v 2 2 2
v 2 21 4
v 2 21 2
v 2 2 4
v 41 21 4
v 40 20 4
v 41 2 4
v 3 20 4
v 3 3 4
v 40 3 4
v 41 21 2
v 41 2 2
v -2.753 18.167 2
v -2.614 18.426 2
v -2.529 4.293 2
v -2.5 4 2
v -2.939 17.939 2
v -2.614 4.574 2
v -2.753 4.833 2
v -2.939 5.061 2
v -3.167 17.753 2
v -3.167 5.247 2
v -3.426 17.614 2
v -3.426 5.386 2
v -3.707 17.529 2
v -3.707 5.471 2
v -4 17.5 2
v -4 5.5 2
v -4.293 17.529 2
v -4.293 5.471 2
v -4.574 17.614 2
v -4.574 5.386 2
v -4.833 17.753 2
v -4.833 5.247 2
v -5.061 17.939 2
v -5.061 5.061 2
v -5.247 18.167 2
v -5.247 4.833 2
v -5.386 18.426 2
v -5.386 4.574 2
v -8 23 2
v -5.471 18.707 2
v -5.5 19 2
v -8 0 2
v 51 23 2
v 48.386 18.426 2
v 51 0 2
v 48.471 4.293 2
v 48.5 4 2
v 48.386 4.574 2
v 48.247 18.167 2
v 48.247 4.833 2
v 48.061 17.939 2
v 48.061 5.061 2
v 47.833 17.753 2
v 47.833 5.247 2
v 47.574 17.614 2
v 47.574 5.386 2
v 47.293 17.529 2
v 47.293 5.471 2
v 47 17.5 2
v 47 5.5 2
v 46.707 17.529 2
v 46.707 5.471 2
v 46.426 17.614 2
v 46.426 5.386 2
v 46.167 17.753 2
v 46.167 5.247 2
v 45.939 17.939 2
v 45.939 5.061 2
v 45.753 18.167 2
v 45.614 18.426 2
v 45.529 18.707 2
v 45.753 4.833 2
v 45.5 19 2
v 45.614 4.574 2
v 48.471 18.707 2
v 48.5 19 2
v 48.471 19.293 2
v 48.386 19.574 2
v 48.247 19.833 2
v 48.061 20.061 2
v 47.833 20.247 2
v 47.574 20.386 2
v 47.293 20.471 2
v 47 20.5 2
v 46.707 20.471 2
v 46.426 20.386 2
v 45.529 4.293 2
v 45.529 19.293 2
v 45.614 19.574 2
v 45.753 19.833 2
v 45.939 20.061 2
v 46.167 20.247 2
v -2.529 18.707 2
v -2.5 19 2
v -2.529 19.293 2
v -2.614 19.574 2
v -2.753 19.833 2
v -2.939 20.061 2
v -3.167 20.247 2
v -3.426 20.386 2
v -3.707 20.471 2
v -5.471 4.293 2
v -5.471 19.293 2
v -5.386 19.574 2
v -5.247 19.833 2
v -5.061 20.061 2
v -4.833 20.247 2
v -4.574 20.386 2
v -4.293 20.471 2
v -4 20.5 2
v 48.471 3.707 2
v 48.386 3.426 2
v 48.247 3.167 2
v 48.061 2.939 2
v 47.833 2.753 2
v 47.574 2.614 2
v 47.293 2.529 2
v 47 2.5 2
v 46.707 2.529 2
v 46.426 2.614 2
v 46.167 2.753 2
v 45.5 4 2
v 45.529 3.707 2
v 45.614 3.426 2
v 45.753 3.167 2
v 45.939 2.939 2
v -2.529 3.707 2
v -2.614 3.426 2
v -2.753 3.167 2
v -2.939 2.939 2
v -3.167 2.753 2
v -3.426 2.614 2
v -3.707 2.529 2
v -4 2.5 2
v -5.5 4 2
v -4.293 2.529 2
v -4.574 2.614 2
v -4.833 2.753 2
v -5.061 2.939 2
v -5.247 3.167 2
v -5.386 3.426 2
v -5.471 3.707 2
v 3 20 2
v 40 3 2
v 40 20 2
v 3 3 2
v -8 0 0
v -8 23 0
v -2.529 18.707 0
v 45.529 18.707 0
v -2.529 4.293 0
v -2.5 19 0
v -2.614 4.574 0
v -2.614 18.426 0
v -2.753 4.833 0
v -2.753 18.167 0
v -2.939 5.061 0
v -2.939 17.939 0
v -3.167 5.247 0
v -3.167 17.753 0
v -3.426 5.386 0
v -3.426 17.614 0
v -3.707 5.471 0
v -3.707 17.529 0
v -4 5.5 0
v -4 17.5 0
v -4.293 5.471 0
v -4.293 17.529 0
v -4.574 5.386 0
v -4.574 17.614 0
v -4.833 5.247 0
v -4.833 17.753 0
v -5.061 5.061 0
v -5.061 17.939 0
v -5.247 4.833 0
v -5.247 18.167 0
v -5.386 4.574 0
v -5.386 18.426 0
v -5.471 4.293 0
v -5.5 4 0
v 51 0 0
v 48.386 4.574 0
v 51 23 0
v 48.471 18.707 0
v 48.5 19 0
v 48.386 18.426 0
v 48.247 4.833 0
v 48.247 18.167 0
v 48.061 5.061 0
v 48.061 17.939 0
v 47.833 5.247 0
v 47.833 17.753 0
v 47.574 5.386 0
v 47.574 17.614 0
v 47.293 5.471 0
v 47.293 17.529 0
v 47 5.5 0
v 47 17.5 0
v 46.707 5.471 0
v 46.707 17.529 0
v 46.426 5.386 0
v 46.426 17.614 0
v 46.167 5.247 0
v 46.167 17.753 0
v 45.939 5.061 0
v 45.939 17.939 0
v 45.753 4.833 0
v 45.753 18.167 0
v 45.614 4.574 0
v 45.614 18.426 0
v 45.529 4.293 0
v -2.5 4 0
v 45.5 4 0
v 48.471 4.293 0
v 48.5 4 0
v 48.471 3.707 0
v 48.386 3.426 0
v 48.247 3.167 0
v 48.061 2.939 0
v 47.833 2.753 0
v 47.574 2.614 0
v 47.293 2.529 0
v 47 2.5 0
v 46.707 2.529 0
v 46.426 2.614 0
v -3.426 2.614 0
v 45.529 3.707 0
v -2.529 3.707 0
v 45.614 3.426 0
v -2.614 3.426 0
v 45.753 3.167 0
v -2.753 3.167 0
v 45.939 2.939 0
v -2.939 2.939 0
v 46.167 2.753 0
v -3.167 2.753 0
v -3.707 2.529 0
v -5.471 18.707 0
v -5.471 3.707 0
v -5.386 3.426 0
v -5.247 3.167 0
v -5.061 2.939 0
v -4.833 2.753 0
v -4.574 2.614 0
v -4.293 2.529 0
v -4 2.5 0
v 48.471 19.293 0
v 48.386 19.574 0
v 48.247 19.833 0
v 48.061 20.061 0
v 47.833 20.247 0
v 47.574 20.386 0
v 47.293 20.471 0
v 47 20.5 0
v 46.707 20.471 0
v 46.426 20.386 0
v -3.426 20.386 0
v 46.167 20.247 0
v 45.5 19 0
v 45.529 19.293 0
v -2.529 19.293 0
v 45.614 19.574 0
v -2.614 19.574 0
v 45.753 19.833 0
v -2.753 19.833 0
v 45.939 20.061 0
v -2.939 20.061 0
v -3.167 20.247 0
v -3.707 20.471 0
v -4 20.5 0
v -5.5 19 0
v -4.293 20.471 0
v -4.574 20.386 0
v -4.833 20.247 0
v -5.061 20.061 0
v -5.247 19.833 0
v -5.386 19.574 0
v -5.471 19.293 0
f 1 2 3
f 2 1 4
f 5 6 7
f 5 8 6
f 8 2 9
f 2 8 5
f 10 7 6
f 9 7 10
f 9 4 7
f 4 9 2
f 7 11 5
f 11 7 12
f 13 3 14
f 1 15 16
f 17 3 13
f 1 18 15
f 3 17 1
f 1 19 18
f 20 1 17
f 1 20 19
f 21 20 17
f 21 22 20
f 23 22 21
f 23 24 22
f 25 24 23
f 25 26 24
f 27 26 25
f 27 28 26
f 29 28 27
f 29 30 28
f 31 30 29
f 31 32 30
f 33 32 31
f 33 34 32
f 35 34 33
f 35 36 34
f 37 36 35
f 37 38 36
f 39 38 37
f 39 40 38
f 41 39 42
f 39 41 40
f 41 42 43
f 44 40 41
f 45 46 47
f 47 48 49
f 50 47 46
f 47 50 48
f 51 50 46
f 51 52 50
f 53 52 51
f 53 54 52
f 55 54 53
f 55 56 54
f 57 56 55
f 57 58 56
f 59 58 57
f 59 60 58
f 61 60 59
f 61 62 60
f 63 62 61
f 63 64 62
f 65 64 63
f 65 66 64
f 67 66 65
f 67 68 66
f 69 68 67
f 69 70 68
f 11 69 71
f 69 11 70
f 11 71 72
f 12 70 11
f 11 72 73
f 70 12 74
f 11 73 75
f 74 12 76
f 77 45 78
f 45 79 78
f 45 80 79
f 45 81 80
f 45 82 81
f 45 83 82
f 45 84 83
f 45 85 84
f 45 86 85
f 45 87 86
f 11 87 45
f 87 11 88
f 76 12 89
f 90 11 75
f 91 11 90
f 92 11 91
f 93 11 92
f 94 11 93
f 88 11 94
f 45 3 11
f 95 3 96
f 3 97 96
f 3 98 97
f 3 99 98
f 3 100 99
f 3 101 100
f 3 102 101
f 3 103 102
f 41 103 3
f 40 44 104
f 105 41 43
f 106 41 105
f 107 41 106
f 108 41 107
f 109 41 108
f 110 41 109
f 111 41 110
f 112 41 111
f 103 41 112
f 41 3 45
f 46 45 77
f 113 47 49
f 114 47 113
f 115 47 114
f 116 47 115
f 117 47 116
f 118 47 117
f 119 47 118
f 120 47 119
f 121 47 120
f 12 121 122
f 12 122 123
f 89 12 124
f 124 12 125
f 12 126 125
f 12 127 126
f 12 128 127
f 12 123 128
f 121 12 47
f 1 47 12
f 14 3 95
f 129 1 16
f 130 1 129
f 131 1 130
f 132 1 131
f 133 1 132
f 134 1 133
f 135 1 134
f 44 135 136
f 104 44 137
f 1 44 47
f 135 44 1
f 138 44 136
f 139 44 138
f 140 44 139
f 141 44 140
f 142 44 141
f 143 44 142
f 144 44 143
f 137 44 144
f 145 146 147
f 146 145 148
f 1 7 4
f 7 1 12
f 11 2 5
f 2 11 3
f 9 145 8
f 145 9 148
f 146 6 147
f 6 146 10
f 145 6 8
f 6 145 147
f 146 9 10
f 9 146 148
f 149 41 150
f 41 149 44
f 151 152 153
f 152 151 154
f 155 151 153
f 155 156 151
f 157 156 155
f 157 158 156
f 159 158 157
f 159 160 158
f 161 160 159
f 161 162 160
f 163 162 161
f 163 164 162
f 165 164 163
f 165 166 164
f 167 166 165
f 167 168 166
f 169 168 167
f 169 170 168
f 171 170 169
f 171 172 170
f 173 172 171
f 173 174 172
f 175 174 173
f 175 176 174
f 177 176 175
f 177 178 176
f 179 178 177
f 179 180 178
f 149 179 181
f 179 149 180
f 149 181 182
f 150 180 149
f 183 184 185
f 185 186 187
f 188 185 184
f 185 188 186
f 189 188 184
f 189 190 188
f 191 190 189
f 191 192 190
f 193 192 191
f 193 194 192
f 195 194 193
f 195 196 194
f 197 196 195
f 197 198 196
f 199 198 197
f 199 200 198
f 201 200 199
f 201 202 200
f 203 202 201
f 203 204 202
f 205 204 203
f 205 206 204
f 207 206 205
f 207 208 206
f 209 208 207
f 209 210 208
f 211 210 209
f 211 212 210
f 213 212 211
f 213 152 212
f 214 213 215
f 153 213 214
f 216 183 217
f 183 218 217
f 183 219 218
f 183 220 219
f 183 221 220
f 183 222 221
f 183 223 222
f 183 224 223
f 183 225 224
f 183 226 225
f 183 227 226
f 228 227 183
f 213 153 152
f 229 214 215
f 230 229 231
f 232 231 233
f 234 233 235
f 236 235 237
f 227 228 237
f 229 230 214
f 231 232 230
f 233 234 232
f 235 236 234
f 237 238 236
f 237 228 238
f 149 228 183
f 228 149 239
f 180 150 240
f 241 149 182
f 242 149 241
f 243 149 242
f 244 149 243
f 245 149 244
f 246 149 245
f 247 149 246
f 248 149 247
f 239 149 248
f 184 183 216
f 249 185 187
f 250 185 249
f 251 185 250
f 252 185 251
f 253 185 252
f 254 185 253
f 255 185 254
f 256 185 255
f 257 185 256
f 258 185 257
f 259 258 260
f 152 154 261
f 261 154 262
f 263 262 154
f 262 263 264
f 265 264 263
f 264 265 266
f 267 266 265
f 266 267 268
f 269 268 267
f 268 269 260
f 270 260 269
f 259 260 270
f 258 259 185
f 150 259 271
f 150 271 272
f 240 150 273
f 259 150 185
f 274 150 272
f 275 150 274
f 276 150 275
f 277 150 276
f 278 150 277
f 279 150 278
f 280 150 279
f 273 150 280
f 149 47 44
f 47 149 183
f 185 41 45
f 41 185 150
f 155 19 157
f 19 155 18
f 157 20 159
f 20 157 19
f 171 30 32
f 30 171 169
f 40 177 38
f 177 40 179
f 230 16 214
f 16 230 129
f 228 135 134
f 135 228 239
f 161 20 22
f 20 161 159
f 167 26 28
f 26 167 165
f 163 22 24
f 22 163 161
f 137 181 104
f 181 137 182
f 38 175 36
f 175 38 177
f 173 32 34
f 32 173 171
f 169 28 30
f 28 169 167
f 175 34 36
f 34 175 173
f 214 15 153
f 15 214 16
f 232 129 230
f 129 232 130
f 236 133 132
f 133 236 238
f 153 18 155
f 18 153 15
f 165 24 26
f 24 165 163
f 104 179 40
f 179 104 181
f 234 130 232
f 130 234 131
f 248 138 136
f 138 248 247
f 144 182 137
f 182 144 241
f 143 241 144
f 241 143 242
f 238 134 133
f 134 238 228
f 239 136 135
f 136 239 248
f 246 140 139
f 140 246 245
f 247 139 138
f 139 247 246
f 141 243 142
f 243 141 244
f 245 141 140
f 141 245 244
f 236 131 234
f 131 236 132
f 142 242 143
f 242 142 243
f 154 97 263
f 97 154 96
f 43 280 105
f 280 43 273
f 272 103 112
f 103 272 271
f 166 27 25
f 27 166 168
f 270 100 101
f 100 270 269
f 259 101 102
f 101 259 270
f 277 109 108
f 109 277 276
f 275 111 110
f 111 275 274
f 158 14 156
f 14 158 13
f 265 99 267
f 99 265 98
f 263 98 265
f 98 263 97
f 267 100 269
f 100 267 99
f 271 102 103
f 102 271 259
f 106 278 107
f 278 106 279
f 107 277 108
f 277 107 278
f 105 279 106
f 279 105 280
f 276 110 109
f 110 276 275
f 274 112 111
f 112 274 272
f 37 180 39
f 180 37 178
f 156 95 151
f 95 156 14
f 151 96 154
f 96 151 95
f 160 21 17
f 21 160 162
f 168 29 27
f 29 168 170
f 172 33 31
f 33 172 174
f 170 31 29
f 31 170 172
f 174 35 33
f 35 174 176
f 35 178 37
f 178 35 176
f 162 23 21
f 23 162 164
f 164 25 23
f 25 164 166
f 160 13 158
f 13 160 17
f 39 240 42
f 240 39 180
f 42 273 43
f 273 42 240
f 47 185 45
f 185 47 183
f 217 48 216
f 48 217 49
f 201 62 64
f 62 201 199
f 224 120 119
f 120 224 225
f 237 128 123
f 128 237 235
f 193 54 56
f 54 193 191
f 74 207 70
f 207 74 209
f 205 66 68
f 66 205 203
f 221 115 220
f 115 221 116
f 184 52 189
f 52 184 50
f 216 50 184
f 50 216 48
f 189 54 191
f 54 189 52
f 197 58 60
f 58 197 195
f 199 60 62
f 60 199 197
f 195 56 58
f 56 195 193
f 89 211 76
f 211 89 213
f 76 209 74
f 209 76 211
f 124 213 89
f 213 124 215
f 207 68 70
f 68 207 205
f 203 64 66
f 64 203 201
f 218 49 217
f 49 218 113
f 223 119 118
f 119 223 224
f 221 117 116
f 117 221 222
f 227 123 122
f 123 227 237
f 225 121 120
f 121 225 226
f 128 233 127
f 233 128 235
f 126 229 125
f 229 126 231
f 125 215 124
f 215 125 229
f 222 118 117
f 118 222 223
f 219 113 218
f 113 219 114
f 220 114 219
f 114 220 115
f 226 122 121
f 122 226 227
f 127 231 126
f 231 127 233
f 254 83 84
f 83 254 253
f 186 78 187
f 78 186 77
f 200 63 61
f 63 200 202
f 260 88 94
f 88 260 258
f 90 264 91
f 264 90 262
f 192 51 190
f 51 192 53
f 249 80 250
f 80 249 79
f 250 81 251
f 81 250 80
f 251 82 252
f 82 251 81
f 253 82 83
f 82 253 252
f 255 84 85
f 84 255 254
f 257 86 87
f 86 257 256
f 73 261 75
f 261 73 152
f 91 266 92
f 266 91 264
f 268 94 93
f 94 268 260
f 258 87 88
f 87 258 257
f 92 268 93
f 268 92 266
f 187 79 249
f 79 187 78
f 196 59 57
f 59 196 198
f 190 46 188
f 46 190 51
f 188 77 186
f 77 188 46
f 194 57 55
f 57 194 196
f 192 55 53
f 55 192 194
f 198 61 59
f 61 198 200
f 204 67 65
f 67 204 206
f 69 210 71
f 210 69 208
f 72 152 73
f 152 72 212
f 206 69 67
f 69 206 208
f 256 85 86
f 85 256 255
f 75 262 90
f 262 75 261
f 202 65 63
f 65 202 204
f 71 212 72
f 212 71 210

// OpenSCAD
$fn=32;

width = 43;
depth = 23;
thickness= 2;
screw_dia= 3;


//The framing
module framing(){
difference(){
    cube ([39,19,2]);
    translate ([1,1,0]) cube ([37,17,2]);
// split for pcb
//    translate ([0,5,0]) cube ([1,4,2]);
//    translate ([38,5,0]) cube ([1,4,2]);
    }
}

//Function for building wings as extensions of the width
module wing(extension){
    // wing on one side
    difference(){
        translate ([-extension,0,0])   cube ([extension,        depth   , thickness]);
      translate([-extension/2, extension/2 ,0]) cylinder (h=        thickness,r= screw_dia/2);
        translate([-extension/2, depth - (extension/2) ,0]) cylinder (h=thickness,r= screw_dia/2);
    }
    
    // wing on other side
    difference(){
         translate ([width,0,0])   cube ([extension,            depth   , thickness]);
         translate([width + (extension/2), extension/2 ,0])         cylinder (h=thickness,r= screw_dia/2);
        translate([width + (extension/2), depth - (extension/2) ,0])         cylinder (h=thickness,r= screw_dia/2);
    }
}
//
//Build the base part
cube ([width,depth,thickness]);

//put the frame att right place
translate ([2,2,2]) framing ();

wing (8);
